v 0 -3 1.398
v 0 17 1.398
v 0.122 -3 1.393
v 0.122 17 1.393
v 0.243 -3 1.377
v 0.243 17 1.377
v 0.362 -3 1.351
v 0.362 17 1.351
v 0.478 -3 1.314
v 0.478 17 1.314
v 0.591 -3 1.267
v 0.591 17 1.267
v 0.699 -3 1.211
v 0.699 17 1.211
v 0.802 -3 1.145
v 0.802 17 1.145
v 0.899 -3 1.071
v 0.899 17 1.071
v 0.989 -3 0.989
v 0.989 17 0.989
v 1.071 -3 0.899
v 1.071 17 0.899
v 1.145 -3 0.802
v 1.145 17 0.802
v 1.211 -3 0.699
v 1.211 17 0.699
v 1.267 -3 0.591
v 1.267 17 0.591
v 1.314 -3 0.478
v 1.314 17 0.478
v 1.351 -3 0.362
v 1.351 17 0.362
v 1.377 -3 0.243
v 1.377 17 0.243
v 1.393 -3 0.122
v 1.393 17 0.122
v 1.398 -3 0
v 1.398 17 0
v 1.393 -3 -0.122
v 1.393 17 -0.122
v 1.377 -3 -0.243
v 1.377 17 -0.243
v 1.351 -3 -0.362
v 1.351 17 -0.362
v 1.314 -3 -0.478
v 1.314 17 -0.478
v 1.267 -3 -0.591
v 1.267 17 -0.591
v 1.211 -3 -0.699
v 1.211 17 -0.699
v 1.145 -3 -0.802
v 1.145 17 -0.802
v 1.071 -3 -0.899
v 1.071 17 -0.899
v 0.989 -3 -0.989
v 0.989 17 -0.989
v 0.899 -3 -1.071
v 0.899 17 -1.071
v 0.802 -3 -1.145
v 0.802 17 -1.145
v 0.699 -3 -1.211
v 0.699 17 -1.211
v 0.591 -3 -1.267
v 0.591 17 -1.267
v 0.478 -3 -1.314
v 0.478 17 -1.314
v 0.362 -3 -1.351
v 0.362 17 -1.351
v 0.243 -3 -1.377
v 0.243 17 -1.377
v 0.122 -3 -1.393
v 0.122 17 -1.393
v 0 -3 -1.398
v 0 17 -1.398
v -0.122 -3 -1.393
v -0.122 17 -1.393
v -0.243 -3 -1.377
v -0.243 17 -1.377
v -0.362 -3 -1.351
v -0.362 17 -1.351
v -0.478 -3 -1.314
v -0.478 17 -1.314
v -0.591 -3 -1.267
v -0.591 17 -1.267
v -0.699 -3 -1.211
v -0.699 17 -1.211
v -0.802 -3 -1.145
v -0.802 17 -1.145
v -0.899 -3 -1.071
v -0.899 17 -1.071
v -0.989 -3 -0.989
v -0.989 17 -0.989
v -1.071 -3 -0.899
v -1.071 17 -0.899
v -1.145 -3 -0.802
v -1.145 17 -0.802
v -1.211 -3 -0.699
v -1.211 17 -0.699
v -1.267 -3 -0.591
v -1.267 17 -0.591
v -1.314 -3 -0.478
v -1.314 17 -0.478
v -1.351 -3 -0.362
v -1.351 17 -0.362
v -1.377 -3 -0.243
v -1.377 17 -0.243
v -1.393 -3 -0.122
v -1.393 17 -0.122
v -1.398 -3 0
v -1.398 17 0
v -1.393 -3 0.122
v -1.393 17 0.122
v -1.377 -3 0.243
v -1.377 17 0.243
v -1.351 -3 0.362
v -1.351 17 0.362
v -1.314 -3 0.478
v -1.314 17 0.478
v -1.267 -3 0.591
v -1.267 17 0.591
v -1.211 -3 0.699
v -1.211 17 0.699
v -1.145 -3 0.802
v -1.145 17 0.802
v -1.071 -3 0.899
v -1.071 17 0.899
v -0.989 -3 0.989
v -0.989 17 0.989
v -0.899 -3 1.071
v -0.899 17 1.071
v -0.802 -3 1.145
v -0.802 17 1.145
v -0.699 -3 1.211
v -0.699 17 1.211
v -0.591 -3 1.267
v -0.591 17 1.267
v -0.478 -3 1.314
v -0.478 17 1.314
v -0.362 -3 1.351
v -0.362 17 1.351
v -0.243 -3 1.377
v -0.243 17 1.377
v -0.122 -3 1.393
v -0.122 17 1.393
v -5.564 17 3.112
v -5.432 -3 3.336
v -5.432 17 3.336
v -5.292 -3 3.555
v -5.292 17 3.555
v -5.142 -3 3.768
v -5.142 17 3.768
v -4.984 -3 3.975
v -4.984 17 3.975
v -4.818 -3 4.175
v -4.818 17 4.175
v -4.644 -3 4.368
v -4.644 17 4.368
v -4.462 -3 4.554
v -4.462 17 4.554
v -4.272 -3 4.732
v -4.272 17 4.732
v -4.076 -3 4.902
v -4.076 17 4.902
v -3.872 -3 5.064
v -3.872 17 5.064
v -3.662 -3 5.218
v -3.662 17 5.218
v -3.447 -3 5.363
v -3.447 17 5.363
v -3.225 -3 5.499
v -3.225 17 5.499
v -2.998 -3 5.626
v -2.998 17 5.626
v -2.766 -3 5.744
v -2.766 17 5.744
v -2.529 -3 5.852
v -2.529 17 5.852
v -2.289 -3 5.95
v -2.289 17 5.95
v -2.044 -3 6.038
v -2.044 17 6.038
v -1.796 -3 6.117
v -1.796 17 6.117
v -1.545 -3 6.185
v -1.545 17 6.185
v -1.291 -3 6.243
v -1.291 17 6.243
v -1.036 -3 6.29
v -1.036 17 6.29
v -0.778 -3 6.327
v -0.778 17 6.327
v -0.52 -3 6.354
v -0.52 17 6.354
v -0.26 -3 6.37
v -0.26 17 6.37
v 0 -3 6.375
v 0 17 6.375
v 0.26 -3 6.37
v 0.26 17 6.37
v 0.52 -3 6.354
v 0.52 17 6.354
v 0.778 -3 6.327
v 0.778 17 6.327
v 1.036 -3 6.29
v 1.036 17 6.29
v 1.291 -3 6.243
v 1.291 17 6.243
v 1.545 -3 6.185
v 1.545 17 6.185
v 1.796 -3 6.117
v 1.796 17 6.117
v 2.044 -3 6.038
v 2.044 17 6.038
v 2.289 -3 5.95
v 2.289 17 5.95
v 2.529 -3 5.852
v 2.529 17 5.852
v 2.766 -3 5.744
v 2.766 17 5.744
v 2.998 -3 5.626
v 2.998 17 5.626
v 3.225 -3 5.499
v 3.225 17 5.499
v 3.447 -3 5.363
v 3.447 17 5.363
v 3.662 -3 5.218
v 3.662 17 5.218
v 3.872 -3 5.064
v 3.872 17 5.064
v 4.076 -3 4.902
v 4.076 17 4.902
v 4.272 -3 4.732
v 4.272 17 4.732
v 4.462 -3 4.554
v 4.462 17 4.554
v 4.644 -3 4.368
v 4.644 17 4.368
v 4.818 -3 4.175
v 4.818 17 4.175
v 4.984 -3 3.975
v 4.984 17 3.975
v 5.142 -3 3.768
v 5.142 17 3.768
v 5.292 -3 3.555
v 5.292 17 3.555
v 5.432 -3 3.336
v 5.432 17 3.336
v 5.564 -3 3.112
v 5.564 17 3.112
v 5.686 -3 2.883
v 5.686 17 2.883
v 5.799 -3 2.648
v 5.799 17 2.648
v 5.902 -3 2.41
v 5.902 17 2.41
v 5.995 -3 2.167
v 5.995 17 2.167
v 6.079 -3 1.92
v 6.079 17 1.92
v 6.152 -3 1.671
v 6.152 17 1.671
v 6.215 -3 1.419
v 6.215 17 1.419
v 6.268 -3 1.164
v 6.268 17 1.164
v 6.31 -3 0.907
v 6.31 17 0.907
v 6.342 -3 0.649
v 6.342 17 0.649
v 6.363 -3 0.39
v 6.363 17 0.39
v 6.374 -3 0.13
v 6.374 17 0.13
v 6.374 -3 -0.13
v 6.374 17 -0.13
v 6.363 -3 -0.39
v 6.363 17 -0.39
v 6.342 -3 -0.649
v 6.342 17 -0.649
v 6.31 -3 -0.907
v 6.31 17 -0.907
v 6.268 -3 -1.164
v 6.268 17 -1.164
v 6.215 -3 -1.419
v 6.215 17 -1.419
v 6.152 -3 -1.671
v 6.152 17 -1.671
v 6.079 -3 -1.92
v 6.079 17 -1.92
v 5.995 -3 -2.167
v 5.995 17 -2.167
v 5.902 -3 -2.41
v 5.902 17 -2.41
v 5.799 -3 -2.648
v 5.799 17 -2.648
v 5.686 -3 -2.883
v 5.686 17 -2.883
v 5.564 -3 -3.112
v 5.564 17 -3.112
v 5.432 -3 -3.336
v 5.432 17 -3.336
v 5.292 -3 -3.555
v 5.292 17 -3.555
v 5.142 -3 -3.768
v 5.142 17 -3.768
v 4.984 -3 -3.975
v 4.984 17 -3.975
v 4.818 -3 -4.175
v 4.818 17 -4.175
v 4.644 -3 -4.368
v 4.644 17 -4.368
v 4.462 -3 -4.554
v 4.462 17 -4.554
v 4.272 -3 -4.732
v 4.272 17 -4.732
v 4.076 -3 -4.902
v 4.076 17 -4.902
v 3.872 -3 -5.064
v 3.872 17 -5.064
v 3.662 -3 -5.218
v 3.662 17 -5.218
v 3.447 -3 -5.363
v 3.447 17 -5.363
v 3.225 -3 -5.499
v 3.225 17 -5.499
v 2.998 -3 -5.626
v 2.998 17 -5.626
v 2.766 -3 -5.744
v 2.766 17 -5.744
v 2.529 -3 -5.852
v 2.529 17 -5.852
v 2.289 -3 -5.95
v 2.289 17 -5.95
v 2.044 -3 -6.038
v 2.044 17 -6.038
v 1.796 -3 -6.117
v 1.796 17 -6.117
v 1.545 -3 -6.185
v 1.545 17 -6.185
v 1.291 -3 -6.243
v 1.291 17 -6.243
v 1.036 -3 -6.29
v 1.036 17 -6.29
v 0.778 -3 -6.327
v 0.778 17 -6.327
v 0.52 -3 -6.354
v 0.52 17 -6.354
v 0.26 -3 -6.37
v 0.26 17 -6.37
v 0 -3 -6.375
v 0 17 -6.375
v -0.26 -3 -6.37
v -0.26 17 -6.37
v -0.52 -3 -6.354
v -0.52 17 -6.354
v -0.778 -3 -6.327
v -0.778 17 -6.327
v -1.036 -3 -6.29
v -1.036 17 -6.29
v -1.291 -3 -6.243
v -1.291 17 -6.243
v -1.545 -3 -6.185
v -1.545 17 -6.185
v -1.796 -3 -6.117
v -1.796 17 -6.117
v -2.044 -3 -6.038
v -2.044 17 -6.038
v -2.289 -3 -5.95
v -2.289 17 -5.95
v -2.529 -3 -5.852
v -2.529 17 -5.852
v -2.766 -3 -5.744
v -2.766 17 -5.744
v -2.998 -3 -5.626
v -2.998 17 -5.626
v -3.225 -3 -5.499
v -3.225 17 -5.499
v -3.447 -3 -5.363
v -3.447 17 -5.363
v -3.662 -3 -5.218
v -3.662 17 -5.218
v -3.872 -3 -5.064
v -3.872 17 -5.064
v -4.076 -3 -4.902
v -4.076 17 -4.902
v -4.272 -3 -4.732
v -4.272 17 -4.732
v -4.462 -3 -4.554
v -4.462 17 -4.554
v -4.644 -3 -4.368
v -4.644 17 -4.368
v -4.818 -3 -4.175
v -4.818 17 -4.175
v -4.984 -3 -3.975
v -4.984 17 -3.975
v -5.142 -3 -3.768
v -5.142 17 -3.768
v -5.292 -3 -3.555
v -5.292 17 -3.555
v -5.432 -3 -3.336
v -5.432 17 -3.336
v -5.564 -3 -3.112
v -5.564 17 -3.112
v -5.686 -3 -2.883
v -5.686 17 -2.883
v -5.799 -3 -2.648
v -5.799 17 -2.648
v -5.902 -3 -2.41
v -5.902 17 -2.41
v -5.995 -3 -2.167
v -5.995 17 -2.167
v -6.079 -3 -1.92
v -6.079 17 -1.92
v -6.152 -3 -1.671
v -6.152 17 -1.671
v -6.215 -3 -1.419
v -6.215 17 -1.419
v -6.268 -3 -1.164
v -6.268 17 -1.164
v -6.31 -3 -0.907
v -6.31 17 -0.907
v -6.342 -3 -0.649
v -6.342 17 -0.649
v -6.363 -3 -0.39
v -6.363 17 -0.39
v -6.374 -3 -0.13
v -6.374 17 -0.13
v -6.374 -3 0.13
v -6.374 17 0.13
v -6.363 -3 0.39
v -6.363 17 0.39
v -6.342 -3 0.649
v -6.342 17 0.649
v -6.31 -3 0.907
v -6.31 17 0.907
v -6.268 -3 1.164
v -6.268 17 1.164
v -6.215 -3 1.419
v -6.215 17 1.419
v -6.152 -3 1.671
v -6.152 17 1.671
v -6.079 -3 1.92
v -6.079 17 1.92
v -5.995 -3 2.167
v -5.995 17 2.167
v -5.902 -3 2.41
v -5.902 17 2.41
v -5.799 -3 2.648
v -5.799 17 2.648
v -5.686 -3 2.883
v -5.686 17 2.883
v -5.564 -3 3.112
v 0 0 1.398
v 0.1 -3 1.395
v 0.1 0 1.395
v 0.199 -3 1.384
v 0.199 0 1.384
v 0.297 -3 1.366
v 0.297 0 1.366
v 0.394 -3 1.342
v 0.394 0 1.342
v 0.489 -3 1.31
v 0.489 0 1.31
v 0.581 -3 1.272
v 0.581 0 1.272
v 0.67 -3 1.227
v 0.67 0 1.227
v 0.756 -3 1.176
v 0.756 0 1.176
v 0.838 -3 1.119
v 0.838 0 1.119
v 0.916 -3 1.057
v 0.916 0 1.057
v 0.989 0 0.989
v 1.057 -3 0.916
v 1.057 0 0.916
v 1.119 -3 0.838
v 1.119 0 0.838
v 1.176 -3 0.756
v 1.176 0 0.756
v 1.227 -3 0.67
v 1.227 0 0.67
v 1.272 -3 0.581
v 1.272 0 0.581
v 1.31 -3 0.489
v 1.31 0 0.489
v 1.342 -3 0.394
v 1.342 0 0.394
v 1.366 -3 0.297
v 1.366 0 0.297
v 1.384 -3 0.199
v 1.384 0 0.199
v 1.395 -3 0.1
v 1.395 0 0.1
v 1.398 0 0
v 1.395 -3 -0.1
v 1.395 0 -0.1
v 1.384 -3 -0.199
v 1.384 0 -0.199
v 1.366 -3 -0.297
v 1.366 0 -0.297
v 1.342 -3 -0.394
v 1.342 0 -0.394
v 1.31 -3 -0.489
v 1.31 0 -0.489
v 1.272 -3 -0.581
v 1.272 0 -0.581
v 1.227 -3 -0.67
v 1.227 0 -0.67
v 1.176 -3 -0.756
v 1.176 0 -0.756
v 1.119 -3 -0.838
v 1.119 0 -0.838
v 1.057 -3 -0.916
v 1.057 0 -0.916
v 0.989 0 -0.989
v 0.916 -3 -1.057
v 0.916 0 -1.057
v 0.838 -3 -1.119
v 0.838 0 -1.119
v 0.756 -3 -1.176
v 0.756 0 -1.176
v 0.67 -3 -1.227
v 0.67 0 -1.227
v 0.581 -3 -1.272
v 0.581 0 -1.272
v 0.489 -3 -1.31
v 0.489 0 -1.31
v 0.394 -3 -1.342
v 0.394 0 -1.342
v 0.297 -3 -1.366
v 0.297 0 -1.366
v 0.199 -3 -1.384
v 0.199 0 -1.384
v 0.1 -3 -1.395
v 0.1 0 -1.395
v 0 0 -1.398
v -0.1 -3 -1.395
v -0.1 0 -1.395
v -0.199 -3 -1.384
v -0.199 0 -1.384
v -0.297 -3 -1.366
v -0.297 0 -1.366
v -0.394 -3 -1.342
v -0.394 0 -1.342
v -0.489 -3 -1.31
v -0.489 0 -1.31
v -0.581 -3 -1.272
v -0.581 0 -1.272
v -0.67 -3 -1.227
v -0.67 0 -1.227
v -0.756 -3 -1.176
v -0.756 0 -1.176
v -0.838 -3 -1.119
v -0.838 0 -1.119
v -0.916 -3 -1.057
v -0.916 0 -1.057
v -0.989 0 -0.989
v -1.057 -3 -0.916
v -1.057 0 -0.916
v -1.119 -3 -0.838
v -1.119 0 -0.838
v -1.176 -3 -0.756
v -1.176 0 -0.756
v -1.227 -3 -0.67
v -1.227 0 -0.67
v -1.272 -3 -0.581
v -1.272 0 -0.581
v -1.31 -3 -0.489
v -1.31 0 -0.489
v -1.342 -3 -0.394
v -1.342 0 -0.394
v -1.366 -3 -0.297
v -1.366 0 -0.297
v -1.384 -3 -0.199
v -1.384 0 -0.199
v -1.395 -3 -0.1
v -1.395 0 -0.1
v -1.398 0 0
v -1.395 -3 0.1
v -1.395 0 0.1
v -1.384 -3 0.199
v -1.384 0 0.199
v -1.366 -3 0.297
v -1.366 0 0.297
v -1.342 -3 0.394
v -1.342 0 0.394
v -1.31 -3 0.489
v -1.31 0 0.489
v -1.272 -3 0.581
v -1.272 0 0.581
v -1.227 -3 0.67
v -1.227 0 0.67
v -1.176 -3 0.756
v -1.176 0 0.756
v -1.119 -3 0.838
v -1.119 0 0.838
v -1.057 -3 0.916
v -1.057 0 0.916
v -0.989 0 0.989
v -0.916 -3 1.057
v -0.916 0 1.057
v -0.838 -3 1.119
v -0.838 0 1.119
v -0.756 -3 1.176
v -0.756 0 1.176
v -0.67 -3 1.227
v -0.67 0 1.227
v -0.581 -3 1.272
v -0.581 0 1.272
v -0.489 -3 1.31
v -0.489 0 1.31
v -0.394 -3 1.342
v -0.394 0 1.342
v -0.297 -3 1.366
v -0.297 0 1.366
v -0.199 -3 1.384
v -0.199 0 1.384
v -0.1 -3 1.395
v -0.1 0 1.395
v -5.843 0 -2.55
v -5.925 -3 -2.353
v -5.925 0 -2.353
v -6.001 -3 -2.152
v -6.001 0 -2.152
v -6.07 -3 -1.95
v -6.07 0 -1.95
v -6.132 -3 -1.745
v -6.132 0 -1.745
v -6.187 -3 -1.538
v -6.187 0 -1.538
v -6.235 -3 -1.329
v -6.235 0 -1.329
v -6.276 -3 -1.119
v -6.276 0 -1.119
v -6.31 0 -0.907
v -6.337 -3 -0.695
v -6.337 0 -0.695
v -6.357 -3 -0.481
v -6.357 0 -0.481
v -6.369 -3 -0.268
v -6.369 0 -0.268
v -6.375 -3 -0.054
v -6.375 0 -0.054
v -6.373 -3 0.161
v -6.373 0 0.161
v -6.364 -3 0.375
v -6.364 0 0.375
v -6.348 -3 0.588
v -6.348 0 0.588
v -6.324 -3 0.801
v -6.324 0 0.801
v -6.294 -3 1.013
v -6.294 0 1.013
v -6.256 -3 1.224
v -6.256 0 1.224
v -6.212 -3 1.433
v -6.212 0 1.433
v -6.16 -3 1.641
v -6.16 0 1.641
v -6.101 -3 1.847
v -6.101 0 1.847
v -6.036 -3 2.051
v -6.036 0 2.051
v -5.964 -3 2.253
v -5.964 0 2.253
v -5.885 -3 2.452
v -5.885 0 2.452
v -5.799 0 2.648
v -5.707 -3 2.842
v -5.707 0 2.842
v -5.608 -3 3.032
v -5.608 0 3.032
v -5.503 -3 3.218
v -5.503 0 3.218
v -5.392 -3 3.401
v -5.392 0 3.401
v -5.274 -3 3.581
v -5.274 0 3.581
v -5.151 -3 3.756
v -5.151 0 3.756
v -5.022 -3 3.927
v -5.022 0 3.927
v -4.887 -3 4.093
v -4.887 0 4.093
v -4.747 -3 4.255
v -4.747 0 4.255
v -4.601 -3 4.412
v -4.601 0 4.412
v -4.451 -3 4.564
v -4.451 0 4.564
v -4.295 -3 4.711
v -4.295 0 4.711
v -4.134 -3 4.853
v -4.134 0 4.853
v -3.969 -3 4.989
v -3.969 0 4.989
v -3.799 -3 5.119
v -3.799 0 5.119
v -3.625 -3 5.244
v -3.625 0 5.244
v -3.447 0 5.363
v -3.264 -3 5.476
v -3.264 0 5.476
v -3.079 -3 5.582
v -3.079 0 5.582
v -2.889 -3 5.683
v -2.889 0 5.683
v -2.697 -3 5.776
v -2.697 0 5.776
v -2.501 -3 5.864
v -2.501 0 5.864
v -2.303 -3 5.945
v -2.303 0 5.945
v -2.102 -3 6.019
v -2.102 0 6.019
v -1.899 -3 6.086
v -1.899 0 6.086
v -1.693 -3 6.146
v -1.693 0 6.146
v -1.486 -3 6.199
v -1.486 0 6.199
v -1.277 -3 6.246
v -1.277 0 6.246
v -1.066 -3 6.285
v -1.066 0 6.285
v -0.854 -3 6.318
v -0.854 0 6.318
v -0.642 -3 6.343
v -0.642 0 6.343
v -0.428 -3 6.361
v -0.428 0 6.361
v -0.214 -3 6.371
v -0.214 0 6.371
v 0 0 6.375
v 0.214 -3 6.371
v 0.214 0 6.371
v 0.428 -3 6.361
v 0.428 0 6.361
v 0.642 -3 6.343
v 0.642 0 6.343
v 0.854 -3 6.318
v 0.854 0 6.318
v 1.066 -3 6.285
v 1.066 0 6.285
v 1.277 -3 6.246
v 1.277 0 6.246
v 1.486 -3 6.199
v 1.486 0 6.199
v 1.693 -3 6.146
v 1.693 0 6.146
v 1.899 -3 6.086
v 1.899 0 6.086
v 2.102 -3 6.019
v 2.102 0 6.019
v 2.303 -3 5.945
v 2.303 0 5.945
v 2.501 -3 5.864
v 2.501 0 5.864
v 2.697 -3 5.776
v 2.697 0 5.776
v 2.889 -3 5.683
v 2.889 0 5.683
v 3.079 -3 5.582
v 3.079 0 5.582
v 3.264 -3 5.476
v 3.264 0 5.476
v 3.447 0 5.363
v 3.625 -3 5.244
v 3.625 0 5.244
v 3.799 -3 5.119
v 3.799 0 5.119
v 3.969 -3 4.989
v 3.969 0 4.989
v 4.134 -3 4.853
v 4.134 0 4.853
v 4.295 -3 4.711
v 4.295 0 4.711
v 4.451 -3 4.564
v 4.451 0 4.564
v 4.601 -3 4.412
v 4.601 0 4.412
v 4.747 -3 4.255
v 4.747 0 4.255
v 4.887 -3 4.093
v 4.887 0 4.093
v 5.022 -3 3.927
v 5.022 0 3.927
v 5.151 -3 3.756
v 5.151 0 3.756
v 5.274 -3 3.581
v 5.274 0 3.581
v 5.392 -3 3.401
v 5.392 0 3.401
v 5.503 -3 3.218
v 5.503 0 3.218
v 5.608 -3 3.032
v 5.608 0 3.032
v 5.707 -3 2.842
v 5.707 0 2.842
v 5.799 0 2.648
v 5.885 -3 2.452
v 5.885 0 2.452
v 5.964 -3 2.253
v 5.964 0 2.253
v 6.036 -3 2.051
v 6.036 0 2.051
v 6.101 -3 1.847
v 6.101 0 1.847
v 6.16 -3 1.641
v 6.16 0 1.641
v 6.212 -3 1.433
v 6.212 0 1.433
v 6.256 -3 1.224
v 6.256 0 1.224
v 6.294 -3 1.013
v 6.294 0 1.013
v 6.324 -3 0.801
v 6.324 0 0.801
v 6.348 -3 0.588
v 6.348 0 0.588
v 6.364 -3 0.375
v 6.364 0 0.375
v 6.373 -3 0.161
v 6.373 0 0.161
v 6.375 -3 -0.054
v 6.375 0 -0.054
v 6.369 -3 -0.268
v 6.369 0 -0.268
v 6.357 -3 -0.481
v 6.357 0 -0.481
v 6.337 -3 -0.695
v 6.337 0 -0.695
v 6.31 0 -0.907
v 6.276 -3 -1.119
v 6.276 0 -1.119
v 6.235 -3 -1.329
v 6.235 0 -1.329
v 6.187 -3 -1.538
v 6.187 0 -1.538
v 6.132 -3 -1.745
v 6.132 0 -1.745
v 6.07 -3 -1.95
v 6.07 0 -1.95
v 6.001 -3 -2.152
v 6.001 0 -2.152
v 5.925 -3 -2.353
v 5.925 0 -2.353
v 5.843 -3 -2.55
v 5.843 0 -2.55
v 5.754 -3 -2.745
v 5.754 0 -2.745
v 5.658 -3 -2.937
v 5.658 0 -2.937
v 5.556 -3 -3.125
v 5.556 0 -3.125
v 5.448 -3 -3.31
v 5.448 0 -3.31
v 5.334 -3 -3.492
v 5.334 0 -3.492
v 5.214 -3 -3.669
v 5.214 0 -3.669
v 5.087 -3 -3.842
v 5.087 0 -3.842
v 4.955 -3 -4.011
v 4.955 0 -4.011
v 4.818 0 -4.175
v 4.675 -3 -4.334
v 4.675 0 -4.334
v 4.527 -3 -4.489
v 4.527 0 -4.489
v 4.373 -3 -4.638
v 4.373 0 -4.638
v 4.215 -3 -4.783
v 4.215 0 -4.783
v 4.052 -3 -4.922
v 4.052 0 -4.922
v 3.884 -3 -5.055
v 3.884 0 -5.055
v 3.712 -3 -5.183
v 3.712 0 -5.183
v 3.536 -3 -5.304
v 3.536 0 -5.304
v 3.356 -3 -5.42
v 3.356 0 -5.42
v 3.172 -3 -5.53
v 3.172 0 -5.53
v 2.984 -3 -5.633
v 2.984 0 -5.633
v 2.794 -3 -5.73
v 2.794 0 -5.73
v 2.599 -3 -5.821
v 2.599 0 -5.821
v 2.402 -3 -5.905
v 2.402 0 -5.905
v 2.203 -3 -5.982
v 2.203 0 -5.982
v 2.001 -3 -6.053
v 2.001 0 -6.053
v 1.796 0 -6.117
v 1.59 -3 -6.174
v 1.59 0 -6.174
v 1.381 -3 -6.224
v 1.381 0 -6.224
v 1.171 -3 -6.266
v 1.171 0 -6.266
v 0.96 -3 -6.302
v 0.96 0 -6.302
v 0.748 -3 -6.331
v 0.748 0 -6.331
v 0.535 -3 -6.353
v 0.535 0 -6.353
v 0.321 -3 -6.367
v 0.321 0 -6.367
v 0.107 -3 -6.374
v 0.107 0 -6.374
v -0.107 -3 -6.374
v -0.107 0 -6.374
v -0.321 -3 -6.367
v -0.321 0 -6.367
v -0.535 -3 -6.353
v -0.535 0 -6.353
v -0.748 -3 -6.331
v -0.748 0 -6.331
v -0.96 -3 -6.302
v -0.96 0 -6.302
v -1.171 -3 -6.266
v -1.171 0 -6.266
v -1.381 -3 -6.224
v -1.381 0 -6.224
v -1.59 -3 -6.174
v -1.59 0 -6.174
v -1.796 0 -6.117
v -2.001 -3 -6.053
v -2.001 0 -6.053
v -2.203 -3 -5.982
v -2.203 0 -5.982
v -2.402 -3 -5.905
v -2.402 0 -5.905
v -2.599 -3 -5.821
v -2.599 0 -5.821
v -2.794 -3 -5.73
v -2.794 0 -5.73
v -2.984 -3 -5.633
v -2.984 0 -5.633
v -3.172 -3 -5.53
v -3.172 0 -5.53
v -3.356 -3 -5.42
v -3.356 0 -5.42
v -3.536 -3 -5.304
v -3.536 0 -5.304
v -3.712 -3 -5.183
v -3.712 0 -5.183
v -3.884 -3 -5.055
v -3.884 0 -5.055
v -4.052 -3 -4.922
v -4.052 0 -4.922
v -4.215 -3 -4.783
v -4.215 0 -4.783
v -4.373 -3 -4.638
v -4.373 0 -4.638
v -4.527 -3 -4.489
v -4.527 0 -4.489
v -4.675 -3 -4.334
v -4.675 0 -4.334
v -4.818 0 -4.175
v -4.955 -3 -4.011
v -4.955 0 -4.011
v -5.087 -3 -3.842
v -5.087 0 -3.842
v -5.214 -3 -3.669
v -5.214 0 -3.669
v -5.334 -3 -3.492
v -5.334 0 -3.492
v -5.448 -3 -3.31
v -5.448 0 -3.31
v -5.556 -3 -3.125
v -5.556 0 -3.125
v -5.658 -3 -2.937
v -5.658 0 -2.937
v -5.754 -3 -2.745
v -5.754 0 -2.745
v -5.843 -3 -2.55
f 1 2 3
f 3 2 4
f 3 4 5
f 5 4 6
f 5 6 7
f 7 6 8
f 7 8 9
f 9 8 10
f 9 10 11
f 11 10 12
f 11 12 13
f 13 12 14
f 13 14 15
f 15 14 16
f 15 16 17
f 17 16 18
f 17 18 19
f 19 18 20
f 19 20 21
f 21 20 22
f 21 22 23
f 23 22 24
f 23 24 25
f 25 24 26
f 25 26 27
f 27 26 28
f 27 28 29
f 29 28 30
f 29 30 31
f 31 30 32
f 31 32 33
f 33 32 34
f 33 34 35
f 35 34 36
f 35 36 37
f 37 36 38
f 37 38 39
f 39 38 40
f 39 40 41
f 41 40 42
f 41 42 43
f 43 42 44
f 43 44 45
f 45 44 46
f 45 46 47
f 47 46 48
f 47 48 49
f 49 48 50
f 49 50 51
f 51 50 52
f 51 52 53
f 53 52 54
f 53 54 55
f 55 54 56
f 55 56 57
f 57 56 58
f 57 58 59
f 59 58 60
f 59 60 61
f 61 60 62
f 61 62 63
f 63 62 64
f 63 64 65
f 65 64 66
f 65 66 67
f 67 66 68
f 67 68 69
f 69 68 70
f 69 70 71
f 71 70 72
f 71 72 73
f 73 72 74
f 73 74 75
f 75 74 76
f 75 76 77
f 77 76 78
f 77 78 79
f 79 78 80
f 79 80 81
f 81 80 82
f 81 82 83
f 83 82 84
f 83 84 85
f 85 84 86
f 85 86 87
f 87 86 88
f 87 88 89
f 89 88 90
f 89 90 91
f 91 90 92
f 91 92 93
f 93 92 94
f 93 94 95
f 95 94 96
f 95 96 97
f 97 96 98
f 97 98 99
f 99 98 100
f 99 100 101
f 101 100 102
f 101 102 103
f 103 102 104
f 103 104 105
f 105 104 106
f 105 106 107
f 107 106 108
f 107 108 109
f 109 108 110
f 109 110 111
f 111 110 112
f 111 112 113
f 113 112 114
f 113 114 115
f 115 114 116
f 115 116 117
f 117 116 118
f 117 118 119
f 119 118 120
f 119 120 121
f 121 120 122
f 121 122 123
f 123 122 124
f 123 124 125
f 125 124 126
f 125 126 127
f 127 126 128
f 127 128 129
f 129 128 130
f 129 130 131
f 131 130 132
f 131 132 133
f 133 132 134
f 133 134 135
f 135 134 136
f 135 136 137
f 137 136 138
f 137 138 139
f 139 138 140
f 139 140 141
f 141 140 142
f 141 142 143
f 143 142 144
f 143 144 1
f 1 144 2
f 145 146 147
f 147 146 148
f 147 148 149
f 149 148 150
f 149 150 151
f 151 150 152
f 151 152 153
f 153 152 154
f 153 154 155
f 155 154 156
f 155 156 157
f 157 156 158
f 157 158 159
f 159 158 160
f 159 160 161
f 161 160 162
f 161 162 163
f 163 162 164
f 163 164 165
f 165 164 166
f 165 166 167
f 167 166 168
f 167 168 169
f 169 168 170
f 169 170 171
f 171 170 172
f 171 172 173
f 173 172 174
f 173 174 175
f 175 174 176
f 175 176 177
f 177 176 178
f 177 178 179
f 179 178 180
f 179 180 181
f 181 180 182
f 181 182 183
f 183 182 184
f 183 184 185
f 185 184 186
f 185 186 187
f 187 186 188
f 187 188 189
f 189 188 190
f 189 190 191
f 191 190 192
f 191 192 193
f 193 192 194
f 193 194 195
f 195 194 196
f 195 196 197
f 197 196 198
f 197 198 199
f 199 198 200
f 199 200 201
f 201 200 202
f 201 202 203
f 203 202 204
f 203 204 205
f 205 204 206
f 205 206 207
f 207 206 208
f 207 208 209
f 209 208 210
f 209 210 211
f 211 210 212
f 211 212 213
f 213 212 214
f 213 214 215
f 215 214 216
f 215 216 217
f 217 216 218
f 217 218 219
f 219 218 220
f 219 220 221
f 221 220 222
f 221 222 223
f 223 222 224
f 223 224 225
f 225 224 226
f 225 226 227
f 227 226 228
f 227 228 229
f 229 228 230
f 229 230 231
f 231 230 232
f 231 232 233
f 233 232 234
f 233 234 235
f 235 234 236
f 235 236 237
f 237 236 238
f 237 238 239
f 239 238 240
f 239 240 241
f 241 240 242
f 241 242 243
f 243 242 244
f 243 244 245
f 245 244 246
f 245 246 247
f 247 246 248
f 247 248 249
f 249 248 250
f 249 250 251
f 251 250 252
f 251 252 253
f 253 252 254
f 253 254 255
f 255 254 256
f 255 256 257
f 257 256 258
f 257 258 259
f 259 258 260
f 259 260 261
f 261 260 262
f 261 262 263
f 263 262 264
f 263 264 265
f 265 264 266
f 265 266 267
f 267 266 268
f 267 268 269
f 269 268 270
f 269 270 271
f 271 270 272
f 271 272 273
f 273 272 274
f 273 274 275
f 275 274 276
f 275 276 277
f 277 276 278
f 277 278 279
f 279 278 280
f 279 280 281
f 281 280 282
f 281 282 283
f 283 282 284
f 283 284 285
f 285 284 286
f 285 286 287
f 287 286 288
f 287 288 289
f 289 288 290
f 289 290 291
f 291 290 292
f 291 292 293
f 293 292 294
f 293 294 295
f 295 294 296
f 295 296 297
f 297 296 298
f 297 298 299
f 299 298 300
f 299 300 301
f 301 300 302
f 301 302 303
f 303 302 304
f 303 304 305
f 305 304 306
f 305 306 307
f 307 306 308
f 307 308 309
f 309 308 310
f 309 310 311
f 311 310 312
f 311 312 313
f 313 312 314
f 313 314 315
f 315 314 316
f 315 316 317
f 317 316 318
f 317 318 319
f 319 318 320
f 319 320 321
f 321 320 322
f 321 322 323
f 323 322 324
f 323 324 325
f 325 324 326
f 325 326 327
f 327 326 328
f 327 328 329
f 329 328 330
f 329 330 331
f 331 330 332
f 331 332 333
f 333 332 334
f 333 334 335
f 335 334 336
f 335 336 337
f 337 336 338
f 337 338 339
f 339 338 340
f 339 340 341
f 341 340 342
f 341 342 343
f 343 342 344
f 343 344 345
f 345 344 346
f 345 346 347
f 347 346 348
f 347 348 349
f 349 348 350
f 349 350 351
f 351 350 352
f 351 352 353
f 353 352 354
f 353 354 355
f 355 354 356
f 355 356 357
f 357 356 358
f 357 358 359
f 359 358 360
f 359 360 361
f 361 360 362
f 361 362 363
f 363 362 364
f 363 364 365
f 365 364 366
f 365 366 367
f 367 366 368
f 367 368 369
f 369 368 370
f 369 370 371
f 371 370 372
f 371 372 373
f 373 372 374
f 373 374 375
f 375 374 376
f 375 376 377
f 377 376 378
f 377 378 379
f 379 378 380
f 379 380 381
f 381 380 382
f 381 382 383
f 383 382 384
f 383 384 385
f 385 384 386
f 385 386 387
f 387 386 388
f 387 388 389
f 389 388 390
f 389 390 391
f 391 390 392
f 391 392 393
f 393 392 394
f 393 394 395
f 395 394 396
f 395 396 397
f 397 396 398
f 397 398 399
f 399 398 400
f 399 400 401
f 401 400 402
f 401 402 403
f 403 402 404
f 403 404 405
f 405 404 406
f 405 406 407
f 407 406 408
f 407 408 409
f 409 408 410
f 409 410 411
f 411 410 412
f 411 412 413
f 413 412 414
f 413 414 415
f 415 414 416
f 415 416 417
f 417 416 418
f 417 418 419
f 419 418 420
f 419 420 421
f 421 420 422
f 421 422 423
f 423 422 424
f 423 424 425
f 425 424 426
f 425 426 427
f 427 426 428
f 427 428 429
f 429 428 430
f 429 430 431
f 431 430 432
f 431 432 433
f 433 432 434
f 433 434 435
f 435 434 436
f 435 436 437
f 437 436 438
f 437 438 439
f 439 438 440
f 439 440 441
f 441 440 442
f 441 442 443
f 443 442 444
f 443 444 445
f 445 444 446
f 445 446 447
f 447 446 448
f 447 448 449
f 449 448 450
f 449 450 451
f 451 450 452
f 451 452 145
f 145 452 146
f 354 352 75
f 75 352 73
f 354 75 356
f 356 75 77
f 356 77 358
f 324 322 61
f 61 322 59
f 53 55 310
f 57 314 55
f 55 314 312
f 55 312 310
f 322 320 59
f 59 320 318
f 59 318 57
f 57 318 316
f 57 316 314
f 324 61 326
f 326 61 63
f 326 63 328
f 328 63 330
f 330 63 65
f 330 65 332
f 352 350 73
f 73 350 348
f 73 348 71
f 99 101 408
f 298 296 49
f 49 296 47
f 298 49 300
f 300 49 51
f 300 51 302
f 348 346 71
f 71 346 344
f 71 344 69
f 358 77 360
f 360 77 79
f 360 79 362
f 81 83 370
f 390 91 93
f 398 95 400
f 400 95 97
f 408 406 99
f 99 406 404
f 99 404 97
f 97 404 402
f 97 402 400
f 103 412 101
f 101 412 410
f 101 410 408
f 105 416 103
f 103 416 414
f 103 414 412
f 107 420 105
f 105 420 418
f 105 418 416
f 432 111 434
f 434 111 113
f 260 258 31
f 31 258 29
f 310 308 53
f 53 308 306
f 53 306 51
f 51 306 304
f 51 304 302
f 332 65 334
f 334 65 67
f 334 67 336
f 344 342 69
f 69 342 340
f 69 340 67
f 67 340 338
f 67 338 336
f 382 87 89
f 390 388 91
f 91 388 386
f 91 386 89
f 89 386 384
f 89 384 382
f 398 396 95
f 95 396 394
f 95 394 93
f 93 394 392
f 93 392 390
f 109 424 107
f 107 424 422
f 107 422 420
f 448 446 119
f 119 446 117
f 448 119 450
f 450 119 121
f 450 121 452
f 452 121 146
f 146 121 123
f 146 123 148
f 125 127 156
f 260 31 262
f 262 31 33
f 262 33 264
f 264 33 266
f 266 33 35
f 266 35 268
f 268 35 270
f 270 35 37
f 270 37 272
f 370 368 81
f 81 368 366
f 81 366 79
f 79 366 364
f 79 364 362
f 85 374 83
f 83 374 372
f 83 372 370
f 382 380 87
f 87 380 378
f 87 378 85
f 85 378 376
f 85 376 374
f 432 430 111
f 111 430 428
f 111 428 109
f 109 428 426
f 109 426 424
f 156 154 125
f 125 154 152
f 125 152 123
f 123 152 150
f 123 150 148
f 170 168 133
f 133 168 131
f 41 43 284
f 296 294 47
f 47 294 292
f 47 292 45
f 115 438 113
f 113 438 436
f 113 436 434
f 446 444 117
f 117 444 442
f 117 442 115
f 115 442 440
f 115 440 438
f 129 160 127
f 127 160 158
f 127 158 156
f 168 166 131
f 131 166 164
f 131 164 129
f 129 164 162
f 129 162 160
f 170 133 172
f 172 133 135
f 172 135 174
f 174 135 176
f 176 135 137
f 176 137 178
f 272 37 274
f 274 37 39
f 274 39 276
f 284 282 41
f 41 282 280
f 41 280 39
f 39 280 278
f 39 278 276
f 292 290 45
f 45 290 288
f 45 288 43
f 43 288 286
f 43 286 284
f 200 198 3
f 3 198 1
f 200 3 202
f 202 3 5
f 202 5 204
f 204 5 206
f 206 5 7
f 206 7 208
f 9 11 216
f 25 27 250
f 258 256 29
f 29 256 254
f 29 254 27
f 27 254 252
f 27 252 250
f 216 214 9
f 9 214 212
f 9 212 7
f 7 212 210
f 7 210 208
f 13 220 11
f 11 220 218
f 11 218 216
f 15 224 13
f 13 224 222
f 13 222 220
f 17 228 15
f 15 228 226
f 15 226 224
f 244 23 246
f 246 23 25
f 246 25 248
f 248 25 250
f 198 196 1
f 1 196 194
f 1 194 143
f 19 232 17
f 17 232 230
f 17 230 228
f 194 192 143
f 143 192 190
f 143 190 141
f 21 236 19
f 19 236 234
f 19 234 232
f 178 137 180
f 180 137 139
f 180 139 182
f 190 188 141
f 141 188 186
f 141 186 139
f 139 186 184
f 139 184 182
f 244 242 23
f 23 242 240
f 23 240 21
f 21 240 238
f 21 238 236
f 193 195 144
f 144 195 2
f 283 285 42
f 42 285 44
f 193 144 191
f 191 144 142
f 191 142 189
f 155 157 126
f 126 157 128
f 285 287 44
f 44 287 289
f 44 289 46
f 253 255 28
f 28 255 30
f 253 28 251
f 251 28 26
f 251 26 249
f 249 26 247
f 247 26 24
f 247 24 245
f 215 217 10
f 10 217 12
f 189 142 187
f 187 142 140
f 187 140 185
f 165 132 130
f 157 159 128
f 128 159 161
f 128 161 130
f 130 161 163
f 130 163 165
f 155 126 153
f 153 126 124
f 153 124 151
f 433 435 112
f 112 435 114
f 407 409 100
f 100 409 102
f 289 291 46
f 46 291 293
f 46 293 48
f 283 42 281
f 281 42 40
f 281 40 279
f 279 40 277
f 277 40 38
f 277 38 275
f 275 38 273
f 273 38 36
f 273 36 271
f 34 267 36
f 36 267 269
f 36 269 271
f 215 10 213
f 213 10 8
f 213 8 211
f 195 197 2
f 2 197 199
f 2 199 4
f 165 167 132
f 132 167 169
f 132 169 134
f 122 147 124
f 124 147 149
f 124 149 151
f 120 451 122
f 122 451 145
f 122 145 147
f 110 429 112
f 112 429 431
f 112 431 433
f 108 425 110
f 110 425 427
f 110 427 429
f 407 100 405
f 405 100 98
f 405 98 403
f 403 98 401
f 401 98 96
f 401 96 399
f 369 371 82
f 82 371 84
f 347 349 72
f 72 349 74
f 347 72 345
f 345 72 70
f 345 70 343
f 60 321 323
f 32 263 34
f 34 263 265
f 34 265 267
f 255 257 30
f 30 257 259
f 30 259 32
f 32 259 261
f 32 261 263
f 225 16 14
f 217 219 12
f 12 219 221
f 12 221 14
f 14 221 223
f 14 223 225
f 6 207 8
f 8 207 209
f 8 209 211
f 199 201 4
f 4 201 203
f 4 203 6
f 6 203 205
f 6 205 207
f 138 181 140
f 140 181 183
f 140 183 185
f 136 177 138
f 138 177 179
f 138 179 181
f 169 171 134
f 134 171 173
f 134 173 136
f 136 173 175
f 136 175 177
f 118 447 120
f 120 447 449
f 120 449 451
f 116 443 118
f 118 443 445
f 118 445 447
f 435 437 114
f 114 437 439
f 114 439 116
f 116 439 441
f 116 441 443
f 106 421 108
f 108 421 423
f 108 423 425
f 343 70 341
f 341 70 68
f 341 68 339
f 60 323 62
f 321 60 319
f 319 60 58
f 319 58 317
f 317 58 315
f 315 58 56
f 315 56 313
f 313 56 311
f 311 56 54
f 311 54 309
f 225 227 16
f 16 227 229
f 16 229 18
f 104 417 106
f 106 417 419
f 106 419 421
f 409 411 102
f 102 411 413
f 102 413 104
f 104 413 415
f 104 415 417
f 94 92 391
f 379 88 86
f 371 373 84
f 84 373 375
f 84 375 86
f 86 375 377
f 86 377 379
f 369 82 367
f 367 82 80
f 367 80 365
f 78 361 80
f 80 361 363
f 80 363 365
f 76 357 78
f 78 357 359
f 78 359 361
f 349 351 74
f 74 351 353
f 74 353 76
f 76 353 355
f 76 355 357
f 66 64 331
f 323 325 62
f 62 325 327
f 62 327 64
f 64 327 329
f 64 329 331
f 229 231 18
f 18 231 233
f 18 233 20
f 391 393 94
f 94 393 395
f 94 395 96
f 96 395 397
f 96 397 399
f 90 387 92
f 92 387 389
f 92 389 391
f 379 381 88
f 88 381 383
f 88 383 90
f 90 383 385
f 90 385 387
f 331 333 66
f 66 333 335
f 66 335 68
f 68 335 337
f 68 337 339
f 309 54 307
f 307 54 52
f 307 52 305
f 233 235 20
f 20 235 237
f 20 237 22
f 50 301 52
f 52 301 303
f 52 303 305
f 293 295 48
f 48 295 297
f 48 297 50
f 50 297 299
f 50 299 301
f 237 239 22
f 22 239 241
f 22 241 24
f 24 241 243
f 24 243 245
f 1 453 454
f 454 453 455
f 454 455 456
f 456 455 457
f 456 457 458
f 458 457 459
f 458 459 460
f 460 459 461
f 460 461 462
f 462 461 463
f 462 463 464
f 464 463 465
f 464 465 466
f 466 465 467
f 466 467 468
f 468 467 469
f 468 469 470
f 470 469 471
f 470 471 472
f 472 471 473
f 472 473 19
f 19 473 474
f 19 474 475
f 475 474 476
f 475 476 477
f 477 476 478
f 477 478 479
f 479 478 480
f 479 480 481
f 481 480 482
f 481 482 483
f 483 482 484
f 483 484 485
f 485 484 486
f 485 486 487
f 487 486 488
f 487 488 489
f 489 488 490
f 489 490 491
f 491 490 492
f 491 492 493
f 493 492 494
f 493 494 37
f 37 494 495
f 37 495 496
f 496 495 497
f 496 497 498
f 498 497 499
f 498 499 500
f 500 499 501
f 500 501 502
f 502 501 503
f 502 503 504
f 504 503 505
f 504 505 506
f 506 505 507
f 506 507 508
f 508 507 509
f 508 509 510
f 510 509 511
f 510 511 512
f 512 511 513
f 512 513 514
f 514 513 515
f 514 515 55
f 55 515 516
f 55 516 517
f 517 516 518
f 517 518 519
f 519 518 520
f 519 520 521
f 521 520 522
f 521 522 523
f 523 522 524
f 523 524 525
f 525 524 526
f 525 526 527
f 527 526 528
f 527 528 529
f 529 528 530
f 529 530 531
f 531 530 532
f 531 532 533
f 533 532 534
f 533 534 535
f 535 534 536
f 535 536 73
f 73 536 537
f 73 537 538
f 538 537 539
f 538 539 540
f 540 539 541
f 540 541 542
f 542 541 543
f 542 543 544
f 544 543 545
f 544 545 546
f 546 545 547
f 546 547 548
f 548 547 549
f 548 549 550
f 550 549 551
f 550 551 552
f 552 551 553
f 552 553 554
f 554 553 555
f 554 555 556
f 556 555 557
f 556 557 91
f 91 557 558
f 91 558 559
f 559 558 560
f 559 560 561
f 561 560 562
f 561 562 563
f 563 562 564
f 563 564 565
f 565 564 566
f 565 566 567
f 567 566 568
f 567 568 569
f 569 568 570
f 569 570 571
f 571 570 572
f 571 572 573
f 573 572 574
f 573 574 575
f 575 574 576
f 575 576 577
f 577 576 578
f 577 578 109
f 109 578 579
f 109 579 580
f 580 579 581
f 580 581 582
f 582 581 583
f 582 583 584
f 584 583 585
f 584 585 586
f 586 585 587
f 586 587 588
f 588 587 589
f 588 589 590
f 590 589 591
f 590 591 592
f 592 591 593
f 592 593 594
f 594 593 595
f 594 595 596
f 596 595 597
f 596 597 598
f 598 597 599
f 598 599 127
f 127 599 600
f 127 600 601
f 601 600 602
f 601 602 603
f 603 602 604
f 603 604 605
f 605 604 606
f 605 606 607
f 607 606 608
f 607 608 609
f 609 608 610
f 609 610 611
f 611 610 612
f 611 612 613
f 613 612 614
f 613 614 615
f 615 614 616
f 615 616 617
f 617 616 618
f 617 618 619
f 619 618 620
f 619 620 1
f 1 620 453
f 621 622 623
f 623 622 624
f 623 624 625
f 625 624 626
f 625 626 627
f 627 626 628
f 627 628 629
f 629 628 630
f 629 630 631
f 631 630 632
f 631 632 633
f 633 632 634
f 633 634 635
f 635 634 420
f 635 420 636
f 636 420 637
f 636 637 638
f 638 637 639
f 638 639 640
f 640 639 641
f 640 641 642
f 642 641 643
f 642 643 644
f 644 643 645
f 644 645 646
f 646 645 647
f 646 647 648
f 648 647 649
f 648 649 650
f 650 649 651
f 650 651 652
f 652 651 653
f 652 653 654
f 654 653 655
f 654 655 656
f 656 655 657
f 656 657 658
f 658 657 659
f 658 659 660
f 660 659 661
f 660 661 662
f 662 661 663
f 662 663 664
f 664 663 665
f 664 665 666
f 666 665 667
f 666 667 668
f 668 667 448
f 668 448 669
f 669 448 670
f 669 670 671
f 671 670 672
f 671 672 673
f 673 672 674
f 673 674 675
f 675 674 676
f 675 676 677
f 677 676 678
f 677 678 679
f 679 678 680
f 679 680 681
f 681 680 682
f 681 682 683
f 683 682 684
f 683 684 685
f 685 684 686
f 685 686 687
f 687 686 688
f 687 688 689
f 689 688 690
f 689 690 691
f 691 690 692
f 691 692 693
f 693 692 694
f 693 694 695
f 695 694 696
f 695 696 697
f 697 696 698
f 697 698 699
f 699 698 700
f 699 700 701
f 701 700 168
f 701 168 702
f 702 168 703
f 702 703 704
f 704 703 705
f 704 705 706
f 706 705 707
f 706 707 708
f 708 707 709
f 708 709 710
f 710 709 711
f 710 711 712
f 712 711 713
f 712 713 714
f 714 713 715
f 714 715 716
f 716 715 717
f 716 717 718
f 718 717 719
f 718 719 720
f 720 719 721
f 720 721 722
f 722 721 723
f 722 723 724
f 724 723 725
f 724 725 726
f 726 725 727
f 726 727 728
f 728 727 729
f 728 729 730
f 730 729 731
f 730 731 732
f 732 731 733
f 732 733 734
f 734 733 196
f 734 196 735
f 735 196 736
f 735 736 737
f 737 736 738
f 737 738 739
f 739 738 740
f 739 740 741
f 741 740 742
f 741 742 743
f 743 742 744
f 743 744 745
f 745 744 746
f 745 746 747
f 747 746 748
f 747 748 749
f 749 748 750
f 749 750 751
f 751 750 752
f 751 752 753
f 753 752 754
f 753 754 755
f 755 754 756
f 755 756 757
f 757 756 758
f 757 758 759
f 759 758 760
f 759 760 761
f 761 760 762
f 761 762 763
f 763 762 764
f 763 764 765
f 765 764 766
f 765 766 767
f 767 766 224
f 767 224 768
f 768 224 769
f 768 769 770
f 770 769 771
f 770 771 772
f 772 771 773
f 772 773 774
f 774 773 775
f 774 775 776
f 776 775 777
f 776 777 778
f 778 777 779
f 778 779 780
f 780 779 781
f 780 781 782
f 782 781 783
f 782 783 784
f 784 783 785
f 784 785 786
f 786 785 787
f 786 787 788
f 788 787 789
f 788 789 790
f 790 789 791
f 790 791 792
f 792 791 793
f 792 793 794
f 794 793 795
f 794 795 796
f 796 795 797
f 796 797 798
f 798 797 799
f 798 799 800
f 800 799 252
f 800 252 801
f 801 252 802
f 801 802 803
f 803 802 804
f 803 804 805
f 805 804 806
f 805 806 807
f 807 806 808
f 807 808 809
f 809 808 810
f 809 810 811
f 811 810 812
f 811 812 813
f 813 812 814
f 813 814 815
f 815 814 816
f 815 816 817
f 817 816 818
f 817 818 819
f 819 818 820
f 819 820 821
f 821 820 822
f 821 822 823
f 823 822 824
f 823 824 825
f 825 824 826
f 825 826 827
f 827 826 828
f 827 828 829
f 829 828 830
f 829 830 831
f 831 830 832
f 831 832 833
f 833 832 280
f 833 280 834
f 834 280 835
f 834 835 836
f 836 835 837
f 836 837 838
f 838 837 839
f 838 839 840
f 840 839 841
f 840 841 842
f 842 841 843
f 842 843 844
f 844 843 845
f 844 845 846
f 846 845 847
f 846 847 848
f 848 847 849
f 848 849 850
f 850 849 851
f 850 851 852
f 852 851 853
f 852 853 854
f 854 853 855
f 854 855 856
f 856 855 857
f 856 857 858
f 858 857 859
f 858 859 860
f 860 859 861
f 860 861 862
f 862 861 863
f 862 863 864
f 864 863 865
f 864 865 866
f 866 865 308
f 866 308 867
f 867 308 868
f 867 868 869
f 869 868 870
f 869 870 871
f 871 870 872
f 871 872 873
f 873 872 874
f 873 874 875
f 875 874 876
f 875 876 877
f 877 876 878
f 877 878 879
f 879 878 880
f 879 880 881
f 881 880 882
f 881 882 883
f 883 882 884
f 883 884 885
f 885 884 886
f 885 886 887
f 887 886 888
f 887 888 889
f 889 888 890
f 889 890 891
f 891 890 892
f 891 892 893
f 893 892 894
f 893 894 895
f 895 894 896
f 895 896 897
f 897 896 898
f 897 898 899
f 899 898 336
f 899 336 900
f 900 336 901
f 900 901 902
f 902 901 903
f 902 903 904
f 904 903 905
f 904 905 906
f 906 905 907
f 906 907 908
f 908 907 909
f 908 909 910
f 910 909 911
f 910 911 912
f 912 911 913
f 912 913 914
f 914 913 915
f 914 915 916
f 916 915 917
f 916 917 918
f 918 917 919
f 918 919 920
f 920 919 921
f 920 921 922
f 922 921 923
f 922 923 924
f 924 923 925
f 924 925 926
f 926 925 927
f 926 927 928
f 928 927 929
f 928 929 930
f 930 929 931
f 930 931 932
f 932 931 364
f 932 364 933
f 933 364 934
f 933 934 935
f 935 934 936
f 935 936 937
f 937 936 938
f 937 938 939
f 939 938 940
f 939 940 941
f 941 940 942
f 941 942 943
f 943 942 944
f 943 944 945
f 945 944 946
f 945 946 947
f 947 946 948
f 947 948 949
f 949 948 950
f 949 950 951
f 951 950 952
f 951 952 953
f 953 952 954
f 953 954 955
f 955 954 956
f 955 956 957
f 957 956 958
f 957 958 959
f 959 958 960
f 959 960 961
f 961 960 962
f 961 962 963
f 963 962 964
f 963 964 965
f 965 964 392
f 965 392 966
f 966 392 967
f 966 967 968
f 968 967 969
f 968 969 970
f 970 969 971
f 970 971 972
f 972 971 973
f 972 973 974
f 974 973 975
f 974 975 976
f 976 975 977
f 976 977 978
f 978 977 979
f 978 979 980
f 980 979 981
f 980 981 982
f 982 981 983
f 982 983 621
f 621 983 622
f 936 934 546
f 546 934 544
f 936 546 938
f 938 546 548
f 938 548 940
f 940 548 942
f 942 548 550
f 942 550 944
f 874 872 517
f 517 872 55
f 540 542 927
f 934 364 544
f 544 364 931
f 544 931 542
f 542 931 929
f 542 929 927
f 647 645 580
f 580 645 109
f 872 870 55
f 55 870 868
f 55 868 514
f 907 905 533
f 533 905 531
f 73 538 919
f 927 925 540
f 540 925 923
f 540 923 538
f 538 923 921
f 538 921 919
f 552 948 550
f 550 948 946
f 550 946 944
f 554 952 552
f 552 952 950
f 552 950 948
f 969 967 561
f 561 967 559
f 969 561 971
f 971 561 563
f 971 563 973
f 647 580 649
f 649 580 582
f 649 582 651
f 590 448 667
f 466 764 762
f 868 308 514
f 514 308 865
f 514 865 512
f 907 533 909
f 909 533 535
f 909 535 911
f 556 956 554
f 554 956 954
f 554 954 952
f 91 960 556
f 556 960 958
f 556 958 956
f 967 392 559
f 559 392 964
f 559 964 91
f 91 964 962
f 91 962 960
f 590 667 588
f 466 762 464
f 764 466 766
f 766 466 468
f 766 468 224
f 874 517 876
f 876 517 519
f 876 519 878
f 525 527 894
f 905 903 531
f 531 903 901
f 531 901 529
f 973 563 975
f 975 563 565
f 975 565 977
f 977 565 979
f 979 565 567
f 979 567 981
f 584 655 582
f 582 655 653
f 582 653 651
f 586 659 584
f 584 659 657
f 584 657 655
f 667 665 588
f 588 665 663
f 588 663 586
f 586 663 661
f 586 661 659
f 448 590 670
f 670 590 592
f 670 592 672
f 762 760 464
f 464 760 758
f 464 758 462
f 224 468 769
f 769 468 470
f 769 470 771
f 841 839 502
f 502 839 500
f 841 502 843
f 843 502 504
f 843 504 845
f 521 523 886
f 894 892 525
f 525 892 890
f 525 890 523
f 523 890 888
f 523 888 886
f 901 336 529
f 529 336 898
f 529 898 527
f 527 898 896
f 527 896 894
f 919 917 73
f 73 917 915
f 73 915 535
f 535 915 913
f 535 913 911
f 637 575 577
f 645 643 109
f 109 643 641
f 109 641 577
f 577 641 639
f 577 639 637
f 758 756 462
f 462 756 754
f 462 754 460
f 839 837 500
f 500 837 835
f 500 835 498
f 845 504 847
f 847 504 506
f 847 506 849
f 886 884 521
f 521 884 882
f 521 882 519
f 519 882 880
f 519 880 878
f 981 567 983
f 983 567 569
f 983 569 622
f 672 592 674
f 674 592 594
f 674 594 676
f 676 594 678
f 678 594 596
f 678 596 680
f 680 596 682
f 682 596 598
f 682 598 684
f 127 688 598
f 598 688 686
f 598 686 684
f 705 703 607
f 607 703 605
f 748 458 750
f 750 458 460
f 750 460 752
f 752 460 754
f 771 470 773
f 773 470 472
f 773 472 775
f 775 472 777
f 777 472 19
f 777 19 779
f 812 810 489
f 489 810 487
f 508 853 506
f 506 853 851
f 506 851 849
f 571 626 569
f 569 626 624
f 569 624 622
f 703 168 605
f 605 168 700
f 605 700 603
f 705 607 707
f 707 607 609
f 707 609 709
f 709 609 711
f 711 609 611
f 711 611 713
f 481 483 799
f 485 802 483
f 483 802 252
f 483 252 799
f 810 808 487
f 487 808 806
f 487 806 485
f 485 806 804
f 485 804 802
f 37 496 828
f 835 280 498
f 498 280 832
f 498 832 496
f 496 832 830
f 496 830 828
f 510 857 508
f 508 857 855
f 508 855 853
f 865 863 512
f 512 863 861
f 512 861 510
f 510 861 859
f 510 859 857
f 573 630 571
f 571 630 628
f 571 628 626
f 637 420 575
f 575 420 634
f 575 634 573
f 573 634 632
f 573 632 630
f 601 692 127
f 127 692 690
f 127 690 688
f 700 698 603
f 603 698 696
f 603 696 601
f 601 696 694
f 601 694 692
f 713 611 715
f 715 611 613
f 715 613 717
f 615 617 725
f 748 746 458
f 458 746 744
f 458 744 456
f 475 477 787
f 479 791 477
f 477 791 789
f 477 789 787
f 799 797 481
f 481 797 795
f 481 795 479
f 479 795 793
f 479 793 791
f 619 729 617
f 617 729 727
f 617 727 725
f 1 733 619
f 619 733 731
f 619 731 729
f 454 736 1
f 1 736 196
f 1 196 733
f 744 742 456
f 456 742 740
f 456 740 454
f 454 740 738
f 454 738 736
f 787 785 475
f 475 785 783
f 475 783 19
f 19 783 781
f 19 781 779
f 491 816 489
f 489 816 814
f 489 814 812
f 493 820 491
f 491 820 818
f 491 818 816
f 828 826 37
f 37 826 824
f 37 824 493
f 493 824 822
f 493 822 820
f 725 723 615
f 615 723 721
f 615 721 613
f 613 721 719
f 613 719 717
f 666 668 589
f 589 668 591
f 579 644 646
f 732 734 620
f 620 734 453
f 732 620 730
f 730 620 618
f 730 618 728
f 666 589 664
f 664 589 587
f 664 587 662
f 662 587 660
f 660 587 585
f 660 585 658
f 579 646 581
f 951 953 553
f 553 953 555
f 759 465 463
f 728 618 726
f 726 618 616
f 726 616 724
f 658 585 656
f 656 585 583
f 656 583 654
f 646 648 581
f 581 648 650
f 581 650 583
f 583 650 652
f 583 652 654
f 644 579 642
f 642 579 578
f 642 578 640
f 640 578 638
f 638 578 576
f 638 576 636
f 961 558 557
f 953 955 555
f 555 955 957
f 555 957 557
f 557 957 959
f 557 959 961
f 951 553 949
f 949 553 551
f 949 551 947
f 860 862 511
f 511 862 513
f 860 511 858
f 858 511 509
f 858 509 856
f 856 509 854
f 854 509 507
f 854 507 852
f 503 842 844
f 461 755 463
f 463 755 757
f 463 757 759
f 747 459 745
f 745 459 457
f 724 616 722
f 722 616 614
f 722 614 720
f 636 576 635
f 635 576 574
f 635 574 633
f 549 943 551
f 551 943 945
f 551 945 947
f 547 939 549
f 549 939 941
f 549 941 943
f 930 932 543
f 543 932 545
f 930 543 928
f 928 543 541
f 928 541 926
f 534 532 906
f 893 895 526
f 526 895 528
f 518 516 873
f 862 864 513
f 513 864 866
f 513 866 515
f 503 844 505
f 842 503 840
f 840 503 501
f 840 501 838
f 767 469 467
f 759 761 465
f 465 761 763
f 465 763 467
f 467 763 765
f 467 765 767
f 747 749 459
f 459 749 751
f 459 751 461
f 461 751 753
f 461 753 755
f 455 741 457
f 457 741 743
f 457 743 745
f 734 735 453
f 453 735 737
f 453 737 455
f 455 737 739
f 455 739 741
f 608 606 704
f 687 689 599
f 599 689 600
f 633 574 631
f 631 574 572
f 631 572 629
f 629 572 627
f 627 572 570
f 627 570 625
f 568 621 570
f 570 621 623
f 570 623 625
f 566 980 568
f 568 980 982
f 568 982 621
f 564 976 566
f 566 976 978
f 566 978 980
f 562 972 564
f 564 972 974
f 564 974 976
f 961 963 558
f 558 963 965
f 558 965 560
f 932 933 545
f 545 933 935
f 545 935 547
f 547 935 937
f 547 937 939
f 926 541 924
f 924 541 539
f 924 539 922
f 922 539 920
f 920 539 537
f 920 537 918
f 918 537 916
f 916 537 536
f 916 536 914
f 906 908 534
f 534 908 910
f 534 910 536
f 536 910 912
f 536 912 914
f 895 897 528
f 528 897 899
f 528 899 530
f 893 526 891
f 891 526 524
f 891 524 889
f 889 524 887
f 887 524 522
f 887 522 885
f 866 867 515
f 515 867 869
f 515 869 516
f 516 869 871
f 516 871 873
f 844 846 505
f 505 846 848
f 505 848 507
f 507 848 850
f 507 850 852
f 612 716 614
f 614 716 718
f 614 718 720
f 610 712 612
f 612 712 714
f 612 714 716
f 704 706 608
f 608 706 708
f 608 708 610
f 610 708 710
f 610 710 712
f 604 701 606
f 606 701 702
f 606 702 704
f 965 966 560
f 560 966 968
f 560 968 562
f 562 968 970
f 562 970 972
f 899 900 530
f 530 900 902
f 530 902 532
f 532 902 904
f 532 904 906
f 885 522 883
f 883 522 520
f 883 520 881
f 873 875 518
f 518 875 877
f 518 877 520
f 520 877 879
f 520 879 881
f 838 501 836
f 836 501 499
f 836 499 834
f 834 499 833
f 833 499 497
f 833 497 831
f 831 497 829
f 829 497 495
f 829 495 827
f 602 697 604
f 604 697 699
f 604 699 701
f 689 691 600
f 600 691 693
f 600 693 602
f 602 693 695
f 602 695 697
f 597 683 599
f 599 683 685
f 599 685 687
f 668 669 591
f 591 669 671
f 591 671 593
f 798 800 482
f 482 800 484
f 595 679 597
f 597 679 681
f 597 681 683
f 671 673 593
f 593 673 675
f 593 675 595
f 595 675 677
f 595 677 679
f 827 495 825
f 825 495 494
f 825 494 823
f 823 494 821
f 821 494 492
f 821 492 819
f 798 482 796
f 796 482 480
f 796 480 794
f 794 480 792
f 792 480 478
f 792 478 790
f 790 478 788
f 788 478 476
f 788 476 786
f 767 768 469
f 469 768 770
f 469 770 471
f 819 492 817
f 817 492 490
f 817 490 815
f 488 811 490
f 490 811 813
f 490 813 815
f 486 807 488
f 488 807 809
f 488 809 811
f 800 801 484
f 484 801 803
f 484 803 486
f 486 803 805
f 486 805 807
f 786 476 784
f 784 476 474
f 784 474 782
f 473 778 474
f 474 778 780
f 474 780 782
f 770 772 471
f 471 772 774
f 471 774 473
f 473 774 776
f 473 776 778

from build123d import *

# Parameters (mm, degrees)
BOSS_EXTRUDE1_DEPTH      = 17
BOSS_EXTRUDE1_DEPTH_BACK = 3
SKETCH1_R                = 6.375
SKETCH1_R_2              = 1.398165138
SKETCH1_3_R              = 6.375
SKETCH1_3_R_2            = 1.398165138
BOSS_EXTRUDE2_DEPTH      = 3


with BuildPart() as part:
    # Sketch1 → Boss-Extrude1 (new, two sides: drawn at the far end of the back side and taken through both)
    with BuildSketch(Plane(origin=(0, 0, 0), x_dir=(1, 0, 0), z_dir=(0, 1, 0)).offset(-BOSS_EXTRUDE1_DEPTH_BACK)):
        Circle(SKETCH1_R)
        Circle(SKETCH1_R_2, mode=Mode.SUBTRACT)
    extrude(amount=BOSS_EXTRUDE1_DEPTH + BOSS_EXTRUDE1_DEPTH_BACK)


with BuildPart() as body_2:
    # Sketch1<3> → Boss-Extrude2 (new body)
    with BuildSketch(Plane(origin=(0, 0, 0), x_dir=(1, 0, 0), z_dir=(0, 1, 0))):
        Circle(SKETCH1_3_R)
        Circle(SKETCH1_3_R_2, mode=Mode.SUBTRACT)
    extrude(amount=-BOSS_EXTRUDE2_DEPTH)


solid = Compound([part.part, body_2.part])
